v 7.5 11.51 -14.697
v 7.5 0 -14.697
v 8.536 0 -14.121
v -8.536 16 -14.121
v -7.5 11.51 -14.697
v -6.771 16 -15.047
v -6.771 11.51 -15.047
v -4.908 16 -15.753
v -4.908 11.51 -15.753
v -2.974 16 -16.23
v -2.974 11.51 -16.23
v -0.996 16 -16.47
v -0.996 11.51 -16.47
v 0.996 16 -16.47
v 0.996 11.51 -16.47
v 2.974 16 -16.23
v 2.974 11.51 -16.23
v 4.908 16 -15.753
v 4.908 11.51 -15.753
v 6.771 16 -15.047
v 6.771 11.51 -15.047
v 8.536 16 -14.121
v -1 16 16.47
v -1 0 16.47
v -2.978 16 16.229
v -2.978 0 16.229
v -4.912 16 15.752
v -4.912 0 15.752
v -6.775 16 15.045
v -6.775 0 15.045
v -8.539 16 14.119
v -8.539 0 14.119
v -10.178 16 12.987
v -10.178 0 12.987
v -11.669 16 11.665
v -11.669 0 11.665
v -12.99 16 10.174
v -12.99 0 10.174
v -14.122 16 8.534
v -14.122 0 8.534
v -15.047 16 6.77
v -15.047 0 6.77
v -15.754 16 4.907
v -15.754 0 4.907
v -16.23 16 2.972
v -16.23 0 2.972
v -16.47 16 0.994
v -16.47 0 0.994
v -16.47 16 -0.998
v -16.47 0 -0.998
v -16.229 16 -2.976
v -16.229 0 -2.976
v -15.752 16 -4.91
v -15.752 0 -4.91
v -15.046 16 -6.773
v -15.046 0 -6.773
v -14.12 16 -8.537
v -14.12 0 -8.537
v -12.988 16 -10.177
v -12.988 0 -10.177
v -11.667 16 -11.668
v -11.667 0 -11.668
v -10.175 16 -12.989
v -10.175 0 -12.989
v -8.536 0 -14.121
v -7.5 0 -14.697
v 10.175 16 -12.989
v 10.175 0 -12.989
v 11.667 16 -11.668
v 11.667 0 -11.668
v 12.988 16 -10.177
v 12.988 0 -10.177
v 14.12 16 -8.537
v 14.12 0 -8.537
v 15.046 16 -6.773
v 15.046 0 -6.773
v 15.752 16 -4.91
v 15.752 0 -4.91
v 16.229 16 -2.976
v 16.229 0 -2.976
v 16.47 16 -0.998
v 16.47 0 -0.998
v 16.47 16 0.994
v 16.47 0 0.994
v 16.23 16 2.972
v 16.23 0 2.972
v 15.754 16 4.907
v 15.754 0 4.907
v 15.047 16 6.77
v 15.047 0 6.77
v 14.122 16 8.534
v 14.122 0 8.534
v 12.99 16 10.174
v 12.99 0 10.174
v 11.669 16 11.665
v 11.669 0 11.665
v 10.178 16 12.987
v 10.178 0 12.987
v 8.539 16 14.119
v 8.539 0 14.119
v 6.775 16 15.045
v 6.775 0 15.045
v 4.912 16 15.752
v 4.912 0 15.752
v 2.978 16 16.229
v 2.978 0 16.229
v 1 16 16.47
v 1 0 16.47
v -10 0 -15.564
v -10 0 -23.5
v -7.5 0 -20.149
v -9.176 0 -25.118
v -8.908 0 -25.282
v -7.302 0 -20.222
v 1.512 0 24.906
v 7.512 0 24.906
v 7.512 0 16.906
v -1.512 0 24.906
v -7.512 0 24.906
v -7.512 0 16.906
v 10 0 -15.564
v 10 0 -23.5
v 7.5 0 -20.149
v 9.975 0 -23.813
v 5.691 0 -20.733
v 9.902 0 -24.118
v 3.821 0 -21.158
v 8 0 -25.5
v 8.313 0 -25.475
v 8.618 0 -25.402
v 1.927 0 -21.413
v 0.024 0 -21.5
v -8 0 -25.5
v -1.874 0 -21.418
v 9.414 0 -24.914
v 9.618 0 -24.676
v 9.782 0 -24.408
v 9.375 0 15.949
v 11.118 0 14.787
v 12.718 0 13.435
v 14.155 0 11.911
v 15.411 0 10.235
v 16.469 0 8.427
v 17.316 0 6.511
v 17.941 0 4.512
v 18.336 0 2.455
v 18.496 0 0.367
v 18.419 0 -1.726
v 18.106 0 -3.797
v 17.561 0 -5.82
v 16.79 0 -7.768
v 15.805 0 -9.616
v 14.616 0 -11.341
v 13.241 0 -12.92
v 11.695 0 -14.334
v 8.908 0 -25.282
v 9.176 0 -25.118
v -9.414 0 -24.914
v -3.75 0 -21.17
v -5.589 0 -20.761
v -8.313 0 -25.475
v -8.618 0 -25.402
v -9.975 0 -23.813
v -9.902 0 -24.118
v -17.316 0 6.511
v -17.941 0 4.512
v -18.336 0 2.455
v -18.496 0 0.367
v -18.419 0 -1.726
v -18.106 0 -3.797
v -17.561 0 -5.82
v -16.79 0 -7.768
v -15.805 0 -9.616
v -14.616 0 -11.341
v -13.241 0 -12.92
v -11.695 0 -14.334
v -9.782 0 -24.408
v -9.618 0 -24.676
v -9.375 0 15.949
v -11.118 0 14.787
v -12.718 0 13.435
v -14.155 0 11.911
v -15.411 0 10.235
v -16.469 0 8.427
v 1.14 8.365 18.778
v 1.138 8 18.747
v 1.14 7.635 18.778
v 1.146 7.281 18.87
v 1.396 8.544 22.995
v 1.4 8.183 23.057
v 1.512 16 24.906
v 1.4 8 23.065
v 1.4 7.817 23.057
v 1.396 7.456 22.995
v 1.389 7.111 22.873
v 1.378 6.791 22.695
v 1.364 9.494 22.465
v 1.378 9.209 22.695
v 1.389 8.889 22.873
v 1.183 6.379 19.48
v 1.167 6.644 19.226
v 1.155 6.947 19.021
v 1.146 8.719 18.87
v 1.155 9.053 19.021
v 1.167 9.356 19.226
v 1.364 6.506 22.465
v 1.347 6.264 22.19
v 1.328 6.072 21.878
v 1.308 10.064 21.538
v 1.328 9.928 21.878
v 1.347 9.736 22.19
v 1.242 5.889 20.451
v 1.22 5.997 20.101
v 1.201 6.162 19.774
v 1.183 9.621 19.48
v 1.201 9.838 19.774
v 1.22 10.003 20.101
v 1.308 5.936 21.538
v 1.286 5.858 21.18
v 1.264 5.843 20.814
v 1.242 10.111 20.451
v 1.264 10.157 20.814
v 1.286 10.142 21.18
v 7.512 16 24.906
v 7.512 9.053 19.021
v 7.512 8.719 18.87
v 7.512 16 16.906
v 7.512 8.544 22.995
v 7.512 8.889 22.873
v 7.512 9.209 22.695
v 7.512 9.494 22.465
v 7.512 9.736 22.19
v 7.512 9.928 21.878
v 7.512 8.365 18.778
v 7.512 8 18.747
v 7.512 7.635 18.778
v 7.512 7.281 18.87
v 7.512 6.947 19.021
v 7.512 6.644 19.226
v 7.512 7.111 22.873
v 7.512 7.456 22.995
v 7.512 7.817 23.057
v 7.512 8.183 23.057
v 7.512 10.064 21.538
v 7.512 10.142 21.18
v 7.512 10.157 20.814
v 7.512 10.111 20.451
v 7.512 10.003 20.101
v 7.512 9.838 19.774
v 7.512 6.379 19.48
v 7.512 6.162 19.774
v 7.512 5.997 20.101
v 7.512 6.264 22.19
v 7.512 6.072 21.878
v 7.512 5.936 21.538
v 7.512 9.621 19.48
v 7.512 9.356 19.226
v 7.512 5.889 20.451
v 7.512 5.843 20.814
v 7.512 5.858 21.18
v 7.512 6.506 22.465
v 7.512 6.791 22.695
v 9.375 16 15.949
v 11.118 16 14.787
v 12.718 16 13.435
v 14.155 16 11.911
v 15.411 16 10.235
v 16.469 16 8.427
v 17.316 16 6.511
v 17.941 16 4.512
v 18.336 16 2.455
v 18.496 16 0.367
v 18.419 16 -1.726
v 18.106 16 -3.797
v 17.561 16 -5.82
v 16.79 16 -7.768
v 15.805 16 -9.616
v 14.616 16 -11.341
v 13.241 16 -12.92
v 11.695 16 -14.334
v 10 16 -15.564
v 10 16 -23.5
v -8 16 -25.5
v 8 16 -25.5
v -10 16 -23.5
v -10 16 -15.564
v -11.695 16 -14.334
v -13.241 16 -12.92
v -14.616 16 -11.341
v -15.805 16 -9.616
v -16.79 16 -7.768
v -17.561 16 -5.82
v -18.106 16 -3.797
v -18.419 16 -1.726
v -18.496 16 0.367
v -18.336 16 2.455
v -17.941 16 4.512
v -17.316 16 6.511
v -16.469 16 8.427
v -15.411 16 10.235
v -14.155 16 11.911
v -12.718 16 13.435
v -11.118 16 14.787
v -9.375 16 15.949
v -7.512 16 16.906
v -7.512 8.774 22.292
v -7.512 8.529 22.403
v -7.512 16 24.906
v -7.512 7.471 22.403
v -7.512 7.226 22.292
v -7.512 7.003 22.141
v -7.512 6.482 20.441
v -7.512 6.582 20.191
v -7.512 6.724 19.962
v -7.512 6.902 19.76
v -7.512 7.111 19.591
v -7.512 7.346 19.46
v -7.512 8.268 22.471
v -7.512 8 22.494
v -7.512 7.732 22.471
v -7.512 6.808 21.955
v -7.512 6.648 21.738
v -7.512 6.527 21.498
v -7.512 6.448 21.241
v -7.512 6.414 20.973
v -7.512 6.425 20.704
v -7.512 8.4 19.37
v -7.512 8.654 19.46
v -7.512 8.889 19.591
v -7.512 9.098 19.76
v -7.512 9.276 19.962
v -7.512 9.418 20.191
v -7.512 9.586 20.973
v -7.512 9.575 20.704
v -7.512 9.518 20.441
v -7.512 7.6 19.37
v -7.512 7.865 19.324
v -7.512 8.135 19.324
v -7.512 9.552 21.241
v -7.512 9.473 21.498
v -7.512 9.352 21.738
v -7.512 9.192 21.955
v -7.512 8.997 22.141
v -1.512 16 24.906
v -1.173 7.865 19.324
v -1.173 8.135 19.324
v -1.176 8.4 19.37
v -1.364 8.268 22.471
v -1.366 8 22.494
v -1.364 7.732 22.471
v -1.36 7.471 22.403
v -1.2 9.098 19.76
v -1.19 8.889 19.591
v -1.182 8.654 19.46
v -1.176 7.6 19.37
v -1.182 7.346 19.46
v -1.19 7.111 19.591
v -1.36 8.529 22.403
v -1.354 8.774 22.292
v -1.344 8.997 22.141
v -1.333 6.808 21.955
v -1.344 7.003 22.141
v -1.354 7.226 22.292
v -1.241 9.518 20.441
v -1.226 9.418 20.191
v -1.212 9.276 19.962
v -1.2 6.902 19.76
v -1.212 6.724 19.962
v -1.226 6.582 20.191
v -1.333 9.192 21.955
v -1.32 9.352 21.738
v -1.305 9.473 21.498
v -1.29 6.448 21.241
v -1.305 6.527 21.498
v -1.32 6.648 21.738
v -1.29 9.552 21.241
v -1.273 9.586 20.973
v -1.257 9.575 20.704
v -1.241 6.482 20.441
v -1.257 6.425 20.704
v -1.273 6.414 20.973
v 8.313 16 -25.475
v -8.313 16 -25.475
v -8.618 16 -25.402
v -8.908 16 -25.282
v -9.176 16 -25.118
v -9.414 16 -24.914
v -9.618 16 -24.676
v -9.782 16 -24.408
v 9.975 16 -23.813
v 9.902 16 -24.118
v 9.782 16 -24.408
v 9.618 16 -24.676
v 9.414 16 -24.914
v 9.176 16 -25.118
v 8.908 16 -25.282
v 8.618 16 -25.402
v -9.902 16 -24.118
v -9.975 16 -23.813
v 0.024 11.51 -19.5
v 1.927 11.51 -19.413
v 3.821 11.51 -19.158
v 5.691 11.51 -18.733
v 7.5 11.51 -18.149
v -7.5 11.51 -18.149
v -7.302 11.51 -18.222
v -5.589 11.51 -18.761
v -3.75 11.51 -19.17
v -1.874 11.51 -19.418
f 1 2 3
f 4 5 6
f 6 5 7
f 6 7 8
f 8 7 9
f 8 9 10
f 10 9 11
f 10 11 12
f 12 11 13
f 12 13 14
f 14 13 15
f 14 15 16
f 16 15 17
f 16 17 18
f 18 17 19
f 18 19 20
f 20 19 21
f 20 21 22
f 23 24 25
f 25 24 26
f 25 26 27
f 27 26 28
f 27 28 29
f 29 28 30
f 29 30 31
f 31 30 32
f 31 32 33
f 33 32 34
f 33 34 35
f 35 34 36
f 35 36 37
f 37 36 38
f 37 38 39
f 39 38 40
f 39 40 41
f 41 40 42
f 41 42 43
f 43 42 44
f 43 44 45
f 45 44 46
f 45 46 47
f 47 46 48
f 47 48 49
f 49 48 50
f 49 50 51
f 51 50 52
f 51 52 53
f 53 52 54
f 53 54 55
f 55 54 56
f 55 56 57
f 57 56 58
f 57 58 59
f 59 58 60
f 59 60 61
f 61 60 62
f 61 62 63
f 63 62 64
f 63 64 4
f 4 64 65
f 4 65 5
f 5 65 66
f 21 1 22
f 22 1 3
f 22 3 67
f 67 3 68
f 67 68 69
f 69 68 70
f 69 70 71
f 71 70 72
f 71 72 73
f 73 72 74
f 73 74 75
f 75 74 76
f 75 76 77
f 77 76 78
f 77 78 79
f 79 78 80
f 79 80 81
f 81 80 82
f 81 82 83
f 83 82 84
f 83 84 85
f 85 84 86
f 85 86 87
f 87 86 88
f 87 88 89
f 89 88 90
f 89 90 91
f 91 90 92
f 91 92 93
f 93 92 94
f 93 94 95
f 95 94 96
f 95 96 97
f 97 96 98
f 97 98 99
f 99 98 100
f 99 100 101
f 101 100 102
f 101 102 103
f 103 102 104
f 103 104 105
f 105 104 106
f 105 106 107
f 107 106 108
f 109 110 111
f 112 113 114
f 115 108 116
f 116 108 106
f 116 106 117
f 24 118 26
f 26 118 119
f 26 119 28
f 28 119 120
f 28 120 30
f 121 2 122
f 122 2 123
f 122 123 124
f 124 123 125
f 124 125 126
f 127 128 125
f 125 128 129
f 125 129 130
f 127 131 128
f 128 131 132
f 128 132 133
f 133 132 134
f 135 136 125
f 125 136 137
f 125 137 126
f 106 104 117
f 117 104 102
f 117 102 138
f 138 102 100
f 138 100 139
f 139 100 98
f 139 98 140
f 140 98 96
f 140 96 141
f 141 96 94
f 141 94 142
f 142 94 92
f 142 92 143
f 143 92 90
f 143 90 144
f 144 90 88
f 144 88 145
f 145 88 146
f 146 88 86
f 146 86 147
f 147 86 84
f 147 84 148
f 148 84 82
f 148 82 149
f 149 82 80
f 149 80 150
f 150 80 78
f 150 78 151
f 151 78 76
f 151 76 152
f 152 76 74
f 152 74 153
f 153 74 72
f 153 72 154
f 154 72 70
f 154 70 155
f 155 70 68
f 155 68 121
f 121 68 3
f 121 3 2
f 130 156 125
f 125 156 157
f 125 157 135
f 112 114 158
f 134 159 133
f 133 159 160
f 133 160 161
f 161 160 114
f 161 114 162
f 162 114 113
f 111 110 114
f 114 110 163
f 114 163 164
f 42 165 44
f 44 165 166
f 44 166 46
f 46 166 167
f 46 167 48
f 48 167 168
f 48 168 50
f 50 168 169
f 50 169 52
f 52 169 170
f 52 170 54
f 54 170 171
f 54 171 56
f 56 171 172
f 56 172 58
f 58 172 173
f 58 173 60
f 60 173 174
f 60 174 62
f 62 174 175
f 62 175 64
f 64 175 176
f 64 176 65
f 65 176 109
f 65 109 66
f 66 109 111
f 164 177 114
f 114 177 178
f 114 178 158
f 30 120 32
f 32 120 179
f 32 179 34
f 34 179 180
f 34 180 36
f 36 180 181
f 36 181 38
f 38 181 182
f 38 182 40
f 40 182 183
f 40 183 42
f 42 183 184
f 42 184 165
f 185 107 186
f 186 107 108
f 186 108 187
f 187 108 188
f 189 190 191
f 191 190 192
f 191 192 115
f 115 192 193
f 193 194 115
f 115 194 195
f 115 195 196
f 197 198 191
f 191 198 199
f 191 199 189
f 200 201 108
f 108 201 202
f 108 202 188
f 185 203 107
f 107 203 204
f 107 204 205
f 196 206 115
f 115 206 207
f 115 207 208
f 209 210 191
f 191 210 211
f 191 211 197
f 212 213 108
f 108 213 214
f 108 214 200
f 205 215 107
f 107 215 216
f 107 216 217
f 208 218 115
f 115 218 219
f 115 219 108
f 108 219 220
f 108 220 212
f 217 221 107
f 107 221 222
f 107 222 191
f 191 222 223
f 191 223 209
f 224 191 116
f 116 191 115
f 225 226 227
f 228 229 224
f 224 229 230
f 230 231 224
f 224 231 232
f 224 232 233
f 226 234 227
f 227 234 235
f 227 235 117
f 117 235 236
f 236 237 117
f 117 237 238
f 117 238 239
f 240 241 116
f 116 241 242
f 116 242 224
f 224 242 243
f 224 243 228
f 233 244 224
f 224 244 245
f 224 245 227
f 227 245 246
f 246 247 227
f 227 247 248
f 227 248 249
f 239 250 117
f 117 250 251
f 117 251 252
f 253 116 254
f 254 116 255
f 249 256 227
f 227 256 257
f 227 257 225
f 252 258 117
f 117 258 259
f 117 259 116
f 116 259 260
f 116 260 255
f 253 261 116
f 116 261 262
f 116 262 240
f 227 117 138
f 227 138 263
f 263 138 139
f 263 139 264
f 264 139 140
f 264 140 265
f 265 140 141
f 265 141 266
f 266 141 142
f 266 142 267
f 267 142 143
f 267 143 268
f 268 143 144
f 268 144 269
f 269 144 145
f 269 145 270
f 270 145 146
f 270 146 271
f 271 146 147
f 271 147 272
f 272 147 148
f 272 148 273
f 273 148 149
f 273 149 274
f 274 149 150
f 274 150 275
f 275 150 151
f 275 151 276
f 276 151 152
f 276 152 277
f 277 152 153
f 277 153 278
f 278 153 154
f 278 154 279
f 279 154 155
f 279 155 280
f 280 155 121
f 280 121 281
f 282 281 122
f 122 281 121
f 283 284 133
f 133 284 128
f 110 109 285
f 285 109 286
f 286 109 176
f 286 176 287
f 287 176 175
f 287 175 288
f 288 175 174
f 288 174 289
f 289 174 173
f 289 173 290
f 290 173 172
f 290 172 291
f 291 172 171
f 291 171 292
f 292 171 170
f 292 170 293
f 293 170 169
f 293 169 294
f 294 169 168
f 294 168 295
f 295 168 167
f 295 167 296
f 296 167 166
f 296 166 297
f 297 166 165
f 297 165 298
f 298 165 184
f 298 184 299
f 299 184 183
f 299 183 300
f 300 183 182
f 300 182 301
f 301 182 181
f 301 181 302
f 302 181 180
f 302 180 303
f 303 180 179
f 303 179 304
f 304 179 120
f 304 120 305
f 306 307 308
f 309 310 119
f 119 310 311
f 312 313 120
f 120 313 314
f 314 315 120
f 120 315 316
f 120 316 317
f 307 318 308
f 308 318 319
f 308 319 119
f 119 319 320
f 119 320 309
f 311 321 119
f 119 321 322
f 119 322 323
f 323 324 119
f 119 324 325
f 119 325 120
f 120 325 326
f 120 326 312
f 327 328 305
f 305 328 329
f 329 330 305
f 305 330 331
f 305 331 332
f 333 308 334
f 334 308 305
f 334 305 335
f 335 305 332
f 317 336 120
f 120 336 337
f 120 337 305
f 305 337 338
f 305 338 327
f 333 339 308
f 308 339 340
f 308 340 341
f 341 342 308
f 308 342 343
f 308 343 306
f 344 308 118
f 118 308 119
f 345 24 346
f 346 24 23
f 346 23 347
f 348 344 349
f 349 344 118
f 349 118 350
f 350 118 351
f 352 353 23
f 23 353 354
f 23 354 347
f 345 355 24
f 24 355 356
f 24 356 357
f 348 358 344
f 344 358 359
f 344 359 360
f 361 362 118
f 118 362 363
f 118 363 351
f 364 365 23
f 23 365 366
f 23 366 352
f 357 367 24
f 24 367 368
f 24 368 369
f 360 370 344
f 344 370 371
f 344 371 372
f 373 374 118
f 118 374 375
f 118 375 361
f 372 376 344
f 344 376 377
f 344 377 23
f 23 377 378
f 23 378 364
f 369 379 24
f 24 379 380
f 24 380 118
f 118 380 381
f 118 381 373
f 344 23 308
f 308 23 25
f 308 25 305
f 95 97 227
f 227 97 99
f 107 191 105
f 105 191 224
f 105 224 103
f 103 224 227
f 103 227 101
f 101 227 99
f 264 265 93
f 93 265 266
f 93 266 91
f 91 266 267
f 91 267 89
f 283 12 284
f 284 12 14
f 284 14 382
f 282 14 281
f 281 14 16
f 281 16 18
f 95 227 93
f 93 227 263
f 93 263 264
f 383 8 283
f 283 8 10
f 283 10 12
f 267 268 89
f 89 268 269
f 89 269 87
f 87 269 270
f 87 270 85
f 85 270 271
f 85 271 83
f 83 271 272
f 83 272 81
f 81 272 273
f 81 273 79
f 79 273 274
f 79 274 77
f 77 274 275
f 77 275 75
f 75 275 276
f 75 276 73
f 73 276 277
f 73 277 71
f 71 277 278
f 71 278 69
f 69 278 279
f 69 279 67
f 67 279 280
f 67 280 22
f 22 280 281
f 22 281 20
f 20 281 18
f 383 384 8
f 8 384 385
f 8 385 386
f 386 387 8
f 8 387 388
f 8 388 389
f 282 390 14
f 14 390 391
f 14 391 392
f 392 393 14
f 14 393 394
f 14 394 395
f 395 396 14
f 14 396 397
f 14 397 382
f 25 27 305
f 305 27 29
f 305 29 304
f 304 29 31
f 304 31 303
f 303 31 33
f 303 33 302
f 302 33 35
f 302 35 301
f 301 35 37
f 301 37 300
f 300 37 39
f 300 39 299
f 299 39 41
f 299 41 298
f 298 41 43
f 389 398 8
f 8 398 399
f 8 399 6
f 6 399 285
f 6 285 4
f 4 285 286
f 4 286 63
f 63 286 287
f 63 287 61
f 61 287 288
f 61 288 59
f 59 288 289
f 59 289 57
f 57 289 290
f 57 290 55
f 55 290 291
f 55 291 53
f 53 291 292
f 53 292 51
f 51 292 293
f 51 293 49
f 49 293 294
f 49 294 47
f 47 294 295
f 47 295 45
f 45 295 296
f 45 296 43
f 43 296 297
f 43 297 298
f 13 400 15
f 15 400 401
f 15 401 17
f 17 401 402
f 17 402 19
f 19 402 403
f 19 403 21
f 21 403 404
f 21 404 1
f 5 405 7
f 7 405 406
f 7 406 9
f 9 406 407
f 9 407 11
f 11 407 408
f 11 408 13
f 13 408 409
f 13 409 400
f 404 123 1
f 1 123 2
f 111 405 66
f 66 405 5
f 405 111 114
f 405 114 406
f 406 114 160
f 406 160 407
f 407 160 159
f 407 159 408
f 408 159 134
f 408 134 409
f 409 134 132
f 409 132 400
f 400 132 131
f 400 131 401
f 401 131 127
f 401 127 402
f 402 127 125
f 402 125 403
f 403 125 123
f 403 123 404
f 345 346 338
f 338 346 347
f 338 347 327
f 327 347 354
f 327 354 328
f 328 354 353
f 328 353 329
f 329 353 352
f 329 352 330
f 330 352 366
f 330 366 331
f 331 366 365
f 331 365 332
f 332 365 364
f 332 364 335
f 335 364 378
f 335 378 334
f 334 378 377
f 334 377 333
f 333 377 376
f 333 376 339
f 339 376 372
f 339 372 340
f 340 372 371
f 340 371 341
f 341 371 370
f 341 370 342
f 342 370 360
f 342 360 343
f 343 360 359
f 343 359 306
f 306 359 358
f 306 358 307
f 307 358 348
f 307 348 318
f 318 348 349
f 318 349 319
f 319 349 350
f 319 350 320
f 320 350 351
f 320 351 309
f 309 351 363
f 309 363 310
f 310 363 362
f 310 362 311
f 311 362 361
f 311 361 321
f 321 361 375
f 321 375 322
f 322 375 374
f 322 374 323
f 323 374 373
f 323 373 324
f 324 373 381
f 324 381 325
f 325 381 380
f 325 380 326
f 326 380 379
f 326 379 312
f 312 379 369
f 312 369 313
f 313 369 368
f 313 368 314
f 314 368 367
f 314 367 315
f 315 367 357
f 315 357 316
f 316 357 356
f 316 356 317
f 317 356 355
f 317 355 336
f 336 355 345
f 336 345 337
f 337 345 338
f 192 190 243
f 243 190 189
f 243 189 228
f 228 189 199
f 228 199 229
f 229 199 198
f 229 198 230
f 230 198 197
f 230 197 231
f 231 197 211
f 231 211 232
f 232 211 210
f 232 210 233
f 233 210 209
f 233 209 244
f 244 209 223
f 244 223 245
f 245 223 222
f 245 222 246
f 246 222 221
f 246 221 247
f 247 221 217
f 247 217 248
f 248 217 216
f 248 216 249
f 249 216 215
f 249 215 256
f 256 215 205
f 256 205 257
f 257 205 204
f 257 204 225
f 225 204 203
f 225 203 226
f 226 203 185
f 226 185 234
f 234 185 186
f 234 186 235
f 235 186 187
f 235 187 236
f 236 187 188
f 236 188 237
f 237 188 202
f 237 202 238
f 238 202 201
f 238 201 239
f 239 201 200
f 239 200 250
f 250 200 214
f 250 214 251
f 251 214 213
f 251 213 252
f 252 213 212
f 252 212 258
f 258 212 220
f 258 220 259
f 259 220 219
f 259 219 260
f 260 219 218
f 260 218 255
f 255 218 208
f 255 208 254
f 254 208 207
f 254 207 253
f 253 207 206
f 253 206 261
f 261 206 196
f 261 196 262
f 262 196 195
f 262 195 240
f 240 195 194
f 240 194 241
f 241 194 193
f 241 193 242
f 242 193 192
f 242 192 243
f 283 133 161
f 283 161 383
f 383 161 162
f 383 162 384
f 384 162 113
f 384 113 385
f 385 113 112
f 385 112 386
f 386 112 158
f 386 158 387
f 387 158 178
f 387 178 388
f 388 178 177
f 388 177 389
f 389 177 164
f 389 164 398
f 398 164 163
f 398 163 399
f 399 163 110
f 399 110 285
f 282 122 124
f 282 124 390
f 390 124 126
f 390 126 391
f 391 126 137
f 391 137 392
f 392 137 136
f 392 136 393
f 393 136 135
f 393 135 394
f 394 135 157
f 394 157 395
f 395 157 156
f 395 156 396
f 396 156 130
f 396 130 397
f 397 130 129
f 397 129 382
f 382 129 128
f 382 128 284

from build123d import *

# Parameters (mm, degrees)
BOSS_EXTRUDE1_DEPTH = 16
CUT_EXTRUDE1_REACH  = 41.786
SKETCH4_R           = 1.5875
CUT_EXTRUDE2_REACH  = 41.786
SKETCH5_R           = 2.159
FILLET1_R           = 2


with BuildPart() as part:
    # Sketch1 → Boss-Extrude1 (new body)
    with BuildSketch(Plane(origin=(0, 0, 0), x_dir=(1, 0, 0), z_dir=(0, 1, 0))):
        with BuildLine():
            Line((1, -16.469669092), (1.512240508, -24.90610075))
            Line((1.512240508, -24.90610075), (7.512240508, -24.90610075))
            Line((7.512240508, -24.90610075), (7.512240508, -16.90610075))
            ThreePointArc((7.512240508, -16.90610075), (18.445940235, -1.413254699), (10, 15.564382416))
            Line((10, 15.564382416), (10, 25.5))
            Line((10, 25.5), (-10, 25.5))
            Line((-10, 25.5), (-10, 15.564382416))
            ThreePointArc((-10, 15.564382416), (-18.445940235, -1.413254699), (-7.512240508, -16.90610075))
            Line((-7.512240508, -16.90610075), (-7.512240508, -24.90610075))
            Line((-7.512240508, -24.90610075), (-1.512240508, -24.90610075))
            Line((-1.512240508, -24.90610075), (-1, -16.469669092))
            ThreePointArc((-1, -16.469669092), (0, 16.5), (1, -16.469669092))
        make_face()
    extrude(amount=BOSS_EXTRUDE1_DEPTH)

    # Cut-Sweep1: sweep along a path in Sketch2
    with BuildLine(Plane(origin=(0, 0, 0), x_dir=(0, 0, -1), z_dir=(1, 0, 0))) as cut_sweep1_path:
        Line((19.5, 11.510254581), (21.5, 0))
    # Sketch3 → Cut-Sweep1 (sweep, cut)
    with BuildSketch(Plane(origin=(0, 0, 0), x_dir=(1, 0, 0), z_dir=(0, 1, 0))):
        with BuildLine():
            Line((-7.5, 20.14944168), (-7.5, 12.323332295))
            Line((-7.5, 12.323332295), (7.5, 12.323332295))
            Line((7.5, 12.323332295), (7.5, 20.14944168))
            ThreePointArc((7.5, 20.14944168), (0, 21.5), (-7.5, 20.14944168))
        make_face()
    sweep(path=cut_sweep1_path.line, mode=Mode.SUBTRACT)

    # Cut-Extrude1: up to this plane
    cut_extrude1_end = Plane(origin=(-1, 16, 16.469669092), z_dir=(-0.9981617631515517, 0, -0.06060606060606122))
    # Sketch4 → Cut-Extrude1 (cut, up to the surface)
    with BuildSketch(Plane.ZY.offset(7.512240508), mode=Mode.PRIVATE) as cut_extrude1_sk1:
        with Locations((20.90610075, 8)):
            Circle(SKETCH4_R)
    cut_extrude1_tool1 = split(extrude(cut_extrude1_sk1.sketch, amount=-CUT_EXTRUDE1_REACH, mode=Mode.PRIVATE), bisect_by=cut_extrude1_end, keep=Keep.BOTH, mode=Mode.PRIVATE)
    add(cut_extrude1_tool1.solids().sort_by_distance((-7.512241, 8, 20.906101))[0], mode=Mode.SUBTRACT)

    # Cut-Extrude2: up to this plane
    cut_extrude2_end = Plane(origin=(1, 16, 16.469669092), z_dir=(0.9981617631515518, 0, -0.06060606060606071))
    # Sketch5 → Cut-Extrude2 (cut, up to the surface)
    with BuildSketch(Plane(origin=(7.512240508, 0, 0), x_dir=(0, 0, -1), z_dir=(1, 0, 0)), mode=Mode.PRIVATE) as cut_extrude2_sk1:
        with Locations((-20.90610075, 8)):
            Circle(SKETCH5_R)
    cut_extrude2_tool1 = split(extrude(cut_extrude2_sk1.sketch, amount=-CUT_EXTRUDE2_REACH, mode=Mode.PRIVATE), bisect_by=cut_extrude2_end, keep=Keep.BOTH, mode=Mode.PRIVATE)
    add(cut_extrude2_tool1.solids().sort_by_distance((7.512241, 8, 20.906101))[0], mode=Mode.SUBTRACT)

    # Fillet1
    fillet1_edges = [part.edges().sort_by_distance(p)[0] for p in [
        (-10, 8, -25.5),
        (10, 8, -25.5),
    ]]
    fillet(fillet1_edges, radius=FILLET1_R)


solid = part.part
